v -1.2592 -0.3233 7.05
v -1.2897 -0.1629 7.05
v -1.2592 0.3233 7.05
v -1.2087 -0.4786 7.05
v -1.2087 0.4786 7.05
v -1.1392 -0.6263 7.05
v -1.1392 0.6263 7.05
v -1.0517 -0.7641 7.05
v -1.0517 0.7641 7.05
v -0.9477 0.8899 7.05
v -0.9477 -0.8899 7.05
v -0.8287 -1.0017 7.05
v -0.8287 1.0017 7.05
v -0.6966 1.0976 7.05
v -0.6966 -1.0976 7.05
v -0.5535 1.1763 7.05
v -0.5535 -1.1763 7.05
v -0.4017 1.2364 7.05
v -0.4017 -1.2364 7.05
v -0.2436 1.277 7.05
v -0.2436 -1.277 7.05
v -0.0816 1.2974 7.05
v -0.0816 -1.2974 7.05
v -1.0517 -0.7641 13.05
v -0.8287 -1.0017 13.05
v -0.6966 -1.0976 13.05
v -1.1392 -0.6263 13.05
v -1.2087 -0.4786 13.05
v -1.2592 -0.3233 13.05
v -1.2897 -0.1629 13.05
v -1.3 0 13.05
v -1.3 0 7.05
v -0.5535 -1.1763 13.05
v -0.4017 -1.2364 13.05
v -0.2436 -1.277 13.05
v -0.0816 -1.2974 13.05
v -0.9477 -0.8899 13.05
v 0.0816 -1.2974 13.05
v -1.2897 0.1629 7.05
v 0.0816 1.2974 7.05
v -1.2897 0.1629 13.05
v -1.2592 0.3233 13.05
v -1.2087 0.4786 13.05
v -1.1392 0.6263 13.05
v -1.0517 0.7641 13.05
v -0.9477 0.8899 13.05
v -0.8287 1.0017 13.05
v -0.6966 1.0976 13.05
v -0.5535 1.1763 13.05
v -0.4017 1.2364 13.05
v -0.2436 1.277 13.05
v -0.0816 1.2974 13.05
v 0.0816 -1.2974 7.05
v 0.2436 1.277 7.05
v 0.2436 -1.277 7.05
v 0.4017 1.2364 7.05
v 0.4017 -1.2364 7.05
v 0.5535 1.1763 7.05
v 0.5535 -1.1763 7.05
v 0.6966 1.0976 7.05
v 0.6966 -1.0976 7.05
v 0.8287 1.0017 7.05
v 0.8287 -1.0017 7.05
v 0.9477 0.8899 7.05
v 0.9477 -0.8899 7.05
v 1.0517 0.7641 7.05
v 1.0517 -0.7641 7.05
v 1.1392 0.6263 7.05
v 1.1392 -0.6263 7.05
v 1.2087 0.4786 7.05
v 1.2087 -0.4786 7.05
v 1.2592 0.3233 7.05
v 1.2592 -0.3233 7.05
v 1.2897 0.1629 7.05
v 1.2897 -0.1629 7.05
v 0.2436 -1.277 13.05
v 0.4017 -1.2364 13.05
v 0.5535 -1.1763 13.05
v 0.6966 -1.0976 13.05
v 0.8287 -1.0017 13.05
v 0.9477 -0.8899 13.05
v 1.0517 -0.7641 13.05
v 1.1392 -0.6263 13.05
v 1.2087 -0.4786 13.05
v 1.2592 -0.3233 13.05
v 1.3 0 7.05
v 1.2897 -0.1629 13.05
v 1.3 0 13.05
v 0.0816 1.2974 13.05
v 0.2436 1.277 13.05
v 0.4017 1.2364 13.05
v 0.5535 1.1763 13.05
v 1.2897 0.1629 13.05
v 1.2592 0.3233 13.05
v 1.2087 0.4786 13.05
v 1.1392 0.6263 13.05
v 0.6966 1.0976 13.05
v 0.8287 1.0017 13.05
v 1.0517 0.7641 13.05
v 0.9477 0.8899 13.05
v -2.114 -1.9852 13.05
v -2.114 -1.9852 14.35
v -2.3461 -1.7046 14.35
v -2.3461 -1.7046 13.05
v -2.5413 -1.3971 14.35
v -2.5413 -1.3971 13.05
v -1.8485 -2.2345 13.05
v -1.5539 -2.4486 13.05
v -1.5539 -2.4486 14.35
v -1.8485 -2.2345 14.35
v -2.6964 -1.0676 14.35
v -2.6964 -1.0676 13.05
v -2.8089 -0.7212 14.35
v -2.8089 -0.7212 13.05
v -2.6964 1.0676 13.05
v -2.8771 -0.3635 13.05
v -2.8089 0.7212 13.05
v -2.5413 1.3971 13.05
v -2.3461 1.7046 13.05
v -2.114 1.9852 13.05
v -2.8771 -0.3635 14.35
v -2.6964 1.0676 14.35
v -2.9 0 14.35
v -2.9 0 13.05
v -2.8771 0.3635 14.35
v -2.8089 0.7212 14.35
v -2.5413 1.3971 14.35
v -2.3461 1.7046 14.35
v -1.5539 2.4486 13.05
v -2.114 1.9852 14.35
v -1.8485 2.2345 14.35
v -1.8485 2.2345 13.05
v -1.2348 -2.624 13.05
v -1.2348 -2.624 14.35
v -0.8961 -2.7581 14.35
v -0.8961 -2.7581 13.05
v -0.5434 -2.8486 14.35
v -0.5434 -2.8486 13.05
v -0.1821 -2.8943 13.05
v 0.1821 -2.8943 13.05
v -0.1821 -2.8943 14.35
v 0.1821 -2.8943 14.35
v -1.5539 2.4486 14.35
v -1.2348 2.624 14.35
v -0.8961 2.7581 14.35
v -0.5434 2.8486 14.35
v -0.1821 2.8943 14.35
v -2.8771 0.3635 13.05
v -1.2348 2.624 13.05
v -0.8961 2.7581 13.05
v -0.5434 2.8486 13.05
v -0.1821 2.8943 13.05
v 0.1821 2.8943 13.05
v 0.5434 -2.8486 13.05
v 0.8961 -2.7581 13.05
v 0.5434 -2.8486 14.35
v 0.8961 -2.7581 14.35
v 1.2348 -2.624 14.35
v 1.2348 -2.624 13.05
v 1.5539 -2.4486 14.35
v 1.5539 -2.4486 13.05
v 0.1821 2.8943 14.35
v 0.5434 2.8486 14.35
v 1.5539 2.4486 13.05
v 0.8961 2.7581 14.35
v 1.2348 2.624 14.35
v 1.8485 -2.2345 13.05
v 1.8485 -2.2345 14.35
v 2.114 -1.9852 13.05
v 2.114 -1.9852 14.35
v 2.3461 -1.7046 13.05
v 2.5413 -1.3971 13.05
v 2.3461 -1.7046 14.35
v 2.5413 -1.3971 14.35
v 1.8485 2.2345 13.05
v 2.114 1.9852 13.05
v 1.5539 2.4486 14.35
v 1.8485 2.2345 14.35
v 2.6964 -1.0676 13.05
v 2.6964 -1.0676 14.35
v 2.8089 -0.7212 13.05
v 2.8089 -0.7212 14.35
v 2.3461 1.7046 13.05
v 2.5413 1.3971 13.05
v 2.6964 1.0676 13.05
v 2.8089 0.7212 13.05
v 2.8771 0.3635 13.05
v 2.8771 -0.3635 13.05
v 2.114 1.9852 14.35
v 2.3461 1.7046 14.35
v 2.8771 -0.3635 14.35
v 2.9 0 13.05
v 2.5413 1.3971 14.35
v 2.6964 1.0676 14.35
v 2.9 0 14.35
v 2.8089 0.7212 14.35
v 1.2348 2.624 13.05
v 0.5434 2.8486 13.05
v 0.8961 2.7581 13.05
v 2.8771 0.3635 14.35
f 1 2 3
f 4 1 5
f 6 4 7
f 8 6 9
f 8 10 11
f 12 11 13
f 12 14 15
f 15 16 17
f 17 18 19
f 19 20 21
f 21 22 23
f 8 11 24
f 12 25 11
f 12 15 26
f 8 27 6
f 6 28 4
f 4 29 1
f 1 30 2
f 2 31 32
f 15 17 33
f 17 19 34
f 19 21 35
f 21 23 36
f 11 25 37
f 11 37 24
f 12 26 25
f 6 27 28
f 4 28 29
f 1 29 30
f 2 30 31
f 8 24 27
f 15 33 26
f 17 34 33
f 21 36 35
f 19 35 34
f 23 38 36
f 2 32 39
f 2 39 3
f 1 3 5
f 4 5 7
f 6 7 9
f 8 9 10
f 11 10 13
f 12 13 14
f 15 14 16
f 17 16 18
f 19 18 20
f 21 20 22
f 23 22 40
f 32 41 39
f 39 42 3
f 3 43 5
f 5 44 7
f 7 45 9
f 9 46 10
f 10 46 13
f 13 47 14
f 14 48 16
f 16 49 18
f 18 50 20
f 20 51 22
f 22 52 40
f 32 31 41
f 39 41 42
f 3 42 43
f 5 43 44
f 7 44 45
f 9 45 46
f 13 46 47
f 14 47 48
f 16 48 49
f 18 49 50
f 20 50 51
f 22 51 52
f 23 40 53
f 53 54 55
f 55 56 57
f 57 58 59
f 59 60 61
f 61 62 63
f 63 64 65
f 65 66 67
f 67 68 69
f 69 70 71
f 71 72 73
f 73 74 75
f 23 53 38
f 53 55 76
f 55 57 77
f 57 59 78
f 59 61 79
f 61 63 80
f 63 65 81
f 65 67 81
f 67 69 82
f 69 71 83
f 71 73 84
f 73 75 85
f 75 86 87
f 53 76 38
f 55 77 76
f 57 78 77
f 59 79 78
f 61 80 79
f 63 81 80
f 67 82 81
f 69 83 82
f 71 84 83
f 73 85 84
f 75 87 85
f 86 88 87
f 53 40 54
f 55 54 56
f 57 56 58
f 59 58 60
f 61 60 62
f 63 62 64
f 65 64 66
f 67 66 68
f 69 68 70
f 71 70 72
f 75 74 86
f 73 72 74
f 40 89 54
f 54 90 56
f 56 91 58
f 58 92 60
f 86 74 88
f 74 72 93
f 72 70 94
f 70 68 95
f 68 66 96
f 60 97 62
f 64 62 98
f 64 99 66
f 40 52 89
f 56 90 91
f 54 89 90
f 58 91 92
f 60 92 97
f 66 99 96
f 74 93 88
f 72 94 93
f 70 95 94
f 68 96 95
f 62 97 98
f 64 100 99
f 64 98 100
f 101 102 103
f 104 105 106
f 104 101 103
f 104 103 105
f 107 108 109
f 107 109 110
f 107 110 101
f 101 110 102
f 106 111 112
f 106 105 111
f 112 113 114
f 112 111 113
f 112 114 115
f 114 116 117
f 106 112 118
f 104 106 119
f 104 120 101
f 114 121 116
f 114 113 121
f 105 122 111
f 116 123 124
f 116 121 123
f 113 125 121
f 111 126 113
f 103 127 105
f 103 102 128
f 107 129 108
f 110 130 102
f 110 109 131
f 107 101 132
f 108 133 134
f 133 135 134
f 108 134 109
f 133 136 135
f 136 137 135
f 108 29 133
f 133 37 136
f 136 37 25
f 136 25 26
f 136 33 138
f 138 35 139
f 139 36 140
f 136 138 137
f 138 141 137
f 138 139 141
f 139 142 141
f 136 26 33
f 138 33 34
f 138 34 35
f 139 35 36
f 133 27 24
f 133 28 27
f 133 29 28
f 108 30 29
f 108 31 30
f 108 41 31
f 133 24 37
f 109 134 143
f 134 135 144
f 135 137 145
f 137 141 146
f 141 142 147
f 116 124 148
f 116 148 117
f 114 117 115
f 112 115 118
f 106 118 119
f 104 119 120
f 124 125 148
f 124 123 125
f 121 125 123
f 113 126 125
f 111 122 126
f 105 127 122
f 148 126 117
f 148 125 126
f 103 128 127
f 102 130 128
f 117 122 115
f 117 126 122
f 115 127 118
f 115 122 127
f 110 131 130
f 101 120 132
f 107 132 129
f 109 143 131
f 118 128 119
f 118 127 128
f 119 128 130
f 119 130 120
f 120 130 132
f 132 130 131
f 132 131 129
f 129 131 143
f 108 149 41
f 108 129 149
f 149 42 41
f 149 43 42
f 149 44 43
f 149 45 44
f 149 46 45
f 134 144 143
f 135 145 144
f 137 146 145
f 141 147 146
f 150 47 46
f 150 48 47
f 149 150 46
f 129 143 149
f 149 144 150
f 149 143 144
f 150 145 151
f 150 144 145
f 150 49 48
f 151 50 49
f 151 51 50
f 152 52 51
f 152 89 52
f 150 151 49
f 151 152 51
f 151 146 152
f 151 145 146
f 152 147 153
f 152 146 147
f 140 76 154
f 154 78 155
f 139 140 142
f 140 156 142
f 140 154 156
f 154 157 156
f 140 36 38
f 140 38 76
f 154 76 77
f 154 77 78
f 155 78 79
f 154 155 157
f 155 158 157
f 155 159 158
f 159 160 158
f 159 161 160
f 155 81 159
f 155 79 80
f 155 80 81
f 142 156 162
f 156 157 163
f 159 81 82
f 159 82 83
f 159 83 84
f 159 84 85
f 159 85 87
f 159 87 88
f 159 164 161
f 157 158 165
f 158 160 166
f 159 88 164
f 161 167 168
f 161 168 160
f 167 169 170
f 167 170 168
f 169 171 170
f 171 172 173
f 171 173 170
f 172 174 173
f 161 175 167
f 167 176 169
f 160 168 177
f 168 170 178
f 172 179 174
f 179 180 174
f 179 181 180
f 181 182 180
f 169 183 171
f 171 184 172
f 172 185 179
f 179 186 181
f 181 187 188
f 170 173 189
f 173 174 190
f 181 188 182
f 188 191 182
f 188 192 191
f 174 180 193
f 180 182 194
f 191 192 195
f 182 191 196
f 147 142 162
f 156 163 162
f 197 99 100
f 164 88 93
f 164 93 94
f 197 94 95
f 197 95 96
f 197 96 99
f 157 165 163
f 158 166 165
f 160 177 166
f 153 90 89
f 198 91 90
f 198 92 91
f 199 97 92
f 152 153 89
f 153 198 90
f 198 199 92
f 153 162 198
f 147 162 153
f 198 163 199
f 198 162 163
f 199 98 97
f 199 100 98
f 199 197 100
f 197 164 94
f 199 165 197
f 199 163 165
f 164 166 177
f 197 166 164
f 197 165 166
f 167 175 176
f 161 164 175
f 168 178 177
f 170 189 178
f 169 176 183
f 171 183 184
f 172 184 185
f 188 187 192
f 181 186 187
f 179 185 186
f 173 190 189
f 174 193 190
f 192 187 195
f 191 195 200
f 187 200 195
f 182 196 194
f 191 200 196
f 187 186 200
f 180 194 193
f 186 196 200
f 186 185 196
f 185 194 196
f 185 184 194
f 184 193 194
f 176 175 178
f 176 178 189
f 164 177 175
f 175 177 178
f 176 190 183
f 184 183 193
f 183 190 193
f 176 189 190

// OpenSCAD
$fn = 50;

difference() {
	union() {
		translate(v = [0, 0, 7.050000000000001]) {
			cylinder(h = 6, r = 1.3);
		}
		translate(v = [0, 0, 13.05]) {
			cylinder(h = 1.3, r = 2.9);
		}
	}
	union();
}
